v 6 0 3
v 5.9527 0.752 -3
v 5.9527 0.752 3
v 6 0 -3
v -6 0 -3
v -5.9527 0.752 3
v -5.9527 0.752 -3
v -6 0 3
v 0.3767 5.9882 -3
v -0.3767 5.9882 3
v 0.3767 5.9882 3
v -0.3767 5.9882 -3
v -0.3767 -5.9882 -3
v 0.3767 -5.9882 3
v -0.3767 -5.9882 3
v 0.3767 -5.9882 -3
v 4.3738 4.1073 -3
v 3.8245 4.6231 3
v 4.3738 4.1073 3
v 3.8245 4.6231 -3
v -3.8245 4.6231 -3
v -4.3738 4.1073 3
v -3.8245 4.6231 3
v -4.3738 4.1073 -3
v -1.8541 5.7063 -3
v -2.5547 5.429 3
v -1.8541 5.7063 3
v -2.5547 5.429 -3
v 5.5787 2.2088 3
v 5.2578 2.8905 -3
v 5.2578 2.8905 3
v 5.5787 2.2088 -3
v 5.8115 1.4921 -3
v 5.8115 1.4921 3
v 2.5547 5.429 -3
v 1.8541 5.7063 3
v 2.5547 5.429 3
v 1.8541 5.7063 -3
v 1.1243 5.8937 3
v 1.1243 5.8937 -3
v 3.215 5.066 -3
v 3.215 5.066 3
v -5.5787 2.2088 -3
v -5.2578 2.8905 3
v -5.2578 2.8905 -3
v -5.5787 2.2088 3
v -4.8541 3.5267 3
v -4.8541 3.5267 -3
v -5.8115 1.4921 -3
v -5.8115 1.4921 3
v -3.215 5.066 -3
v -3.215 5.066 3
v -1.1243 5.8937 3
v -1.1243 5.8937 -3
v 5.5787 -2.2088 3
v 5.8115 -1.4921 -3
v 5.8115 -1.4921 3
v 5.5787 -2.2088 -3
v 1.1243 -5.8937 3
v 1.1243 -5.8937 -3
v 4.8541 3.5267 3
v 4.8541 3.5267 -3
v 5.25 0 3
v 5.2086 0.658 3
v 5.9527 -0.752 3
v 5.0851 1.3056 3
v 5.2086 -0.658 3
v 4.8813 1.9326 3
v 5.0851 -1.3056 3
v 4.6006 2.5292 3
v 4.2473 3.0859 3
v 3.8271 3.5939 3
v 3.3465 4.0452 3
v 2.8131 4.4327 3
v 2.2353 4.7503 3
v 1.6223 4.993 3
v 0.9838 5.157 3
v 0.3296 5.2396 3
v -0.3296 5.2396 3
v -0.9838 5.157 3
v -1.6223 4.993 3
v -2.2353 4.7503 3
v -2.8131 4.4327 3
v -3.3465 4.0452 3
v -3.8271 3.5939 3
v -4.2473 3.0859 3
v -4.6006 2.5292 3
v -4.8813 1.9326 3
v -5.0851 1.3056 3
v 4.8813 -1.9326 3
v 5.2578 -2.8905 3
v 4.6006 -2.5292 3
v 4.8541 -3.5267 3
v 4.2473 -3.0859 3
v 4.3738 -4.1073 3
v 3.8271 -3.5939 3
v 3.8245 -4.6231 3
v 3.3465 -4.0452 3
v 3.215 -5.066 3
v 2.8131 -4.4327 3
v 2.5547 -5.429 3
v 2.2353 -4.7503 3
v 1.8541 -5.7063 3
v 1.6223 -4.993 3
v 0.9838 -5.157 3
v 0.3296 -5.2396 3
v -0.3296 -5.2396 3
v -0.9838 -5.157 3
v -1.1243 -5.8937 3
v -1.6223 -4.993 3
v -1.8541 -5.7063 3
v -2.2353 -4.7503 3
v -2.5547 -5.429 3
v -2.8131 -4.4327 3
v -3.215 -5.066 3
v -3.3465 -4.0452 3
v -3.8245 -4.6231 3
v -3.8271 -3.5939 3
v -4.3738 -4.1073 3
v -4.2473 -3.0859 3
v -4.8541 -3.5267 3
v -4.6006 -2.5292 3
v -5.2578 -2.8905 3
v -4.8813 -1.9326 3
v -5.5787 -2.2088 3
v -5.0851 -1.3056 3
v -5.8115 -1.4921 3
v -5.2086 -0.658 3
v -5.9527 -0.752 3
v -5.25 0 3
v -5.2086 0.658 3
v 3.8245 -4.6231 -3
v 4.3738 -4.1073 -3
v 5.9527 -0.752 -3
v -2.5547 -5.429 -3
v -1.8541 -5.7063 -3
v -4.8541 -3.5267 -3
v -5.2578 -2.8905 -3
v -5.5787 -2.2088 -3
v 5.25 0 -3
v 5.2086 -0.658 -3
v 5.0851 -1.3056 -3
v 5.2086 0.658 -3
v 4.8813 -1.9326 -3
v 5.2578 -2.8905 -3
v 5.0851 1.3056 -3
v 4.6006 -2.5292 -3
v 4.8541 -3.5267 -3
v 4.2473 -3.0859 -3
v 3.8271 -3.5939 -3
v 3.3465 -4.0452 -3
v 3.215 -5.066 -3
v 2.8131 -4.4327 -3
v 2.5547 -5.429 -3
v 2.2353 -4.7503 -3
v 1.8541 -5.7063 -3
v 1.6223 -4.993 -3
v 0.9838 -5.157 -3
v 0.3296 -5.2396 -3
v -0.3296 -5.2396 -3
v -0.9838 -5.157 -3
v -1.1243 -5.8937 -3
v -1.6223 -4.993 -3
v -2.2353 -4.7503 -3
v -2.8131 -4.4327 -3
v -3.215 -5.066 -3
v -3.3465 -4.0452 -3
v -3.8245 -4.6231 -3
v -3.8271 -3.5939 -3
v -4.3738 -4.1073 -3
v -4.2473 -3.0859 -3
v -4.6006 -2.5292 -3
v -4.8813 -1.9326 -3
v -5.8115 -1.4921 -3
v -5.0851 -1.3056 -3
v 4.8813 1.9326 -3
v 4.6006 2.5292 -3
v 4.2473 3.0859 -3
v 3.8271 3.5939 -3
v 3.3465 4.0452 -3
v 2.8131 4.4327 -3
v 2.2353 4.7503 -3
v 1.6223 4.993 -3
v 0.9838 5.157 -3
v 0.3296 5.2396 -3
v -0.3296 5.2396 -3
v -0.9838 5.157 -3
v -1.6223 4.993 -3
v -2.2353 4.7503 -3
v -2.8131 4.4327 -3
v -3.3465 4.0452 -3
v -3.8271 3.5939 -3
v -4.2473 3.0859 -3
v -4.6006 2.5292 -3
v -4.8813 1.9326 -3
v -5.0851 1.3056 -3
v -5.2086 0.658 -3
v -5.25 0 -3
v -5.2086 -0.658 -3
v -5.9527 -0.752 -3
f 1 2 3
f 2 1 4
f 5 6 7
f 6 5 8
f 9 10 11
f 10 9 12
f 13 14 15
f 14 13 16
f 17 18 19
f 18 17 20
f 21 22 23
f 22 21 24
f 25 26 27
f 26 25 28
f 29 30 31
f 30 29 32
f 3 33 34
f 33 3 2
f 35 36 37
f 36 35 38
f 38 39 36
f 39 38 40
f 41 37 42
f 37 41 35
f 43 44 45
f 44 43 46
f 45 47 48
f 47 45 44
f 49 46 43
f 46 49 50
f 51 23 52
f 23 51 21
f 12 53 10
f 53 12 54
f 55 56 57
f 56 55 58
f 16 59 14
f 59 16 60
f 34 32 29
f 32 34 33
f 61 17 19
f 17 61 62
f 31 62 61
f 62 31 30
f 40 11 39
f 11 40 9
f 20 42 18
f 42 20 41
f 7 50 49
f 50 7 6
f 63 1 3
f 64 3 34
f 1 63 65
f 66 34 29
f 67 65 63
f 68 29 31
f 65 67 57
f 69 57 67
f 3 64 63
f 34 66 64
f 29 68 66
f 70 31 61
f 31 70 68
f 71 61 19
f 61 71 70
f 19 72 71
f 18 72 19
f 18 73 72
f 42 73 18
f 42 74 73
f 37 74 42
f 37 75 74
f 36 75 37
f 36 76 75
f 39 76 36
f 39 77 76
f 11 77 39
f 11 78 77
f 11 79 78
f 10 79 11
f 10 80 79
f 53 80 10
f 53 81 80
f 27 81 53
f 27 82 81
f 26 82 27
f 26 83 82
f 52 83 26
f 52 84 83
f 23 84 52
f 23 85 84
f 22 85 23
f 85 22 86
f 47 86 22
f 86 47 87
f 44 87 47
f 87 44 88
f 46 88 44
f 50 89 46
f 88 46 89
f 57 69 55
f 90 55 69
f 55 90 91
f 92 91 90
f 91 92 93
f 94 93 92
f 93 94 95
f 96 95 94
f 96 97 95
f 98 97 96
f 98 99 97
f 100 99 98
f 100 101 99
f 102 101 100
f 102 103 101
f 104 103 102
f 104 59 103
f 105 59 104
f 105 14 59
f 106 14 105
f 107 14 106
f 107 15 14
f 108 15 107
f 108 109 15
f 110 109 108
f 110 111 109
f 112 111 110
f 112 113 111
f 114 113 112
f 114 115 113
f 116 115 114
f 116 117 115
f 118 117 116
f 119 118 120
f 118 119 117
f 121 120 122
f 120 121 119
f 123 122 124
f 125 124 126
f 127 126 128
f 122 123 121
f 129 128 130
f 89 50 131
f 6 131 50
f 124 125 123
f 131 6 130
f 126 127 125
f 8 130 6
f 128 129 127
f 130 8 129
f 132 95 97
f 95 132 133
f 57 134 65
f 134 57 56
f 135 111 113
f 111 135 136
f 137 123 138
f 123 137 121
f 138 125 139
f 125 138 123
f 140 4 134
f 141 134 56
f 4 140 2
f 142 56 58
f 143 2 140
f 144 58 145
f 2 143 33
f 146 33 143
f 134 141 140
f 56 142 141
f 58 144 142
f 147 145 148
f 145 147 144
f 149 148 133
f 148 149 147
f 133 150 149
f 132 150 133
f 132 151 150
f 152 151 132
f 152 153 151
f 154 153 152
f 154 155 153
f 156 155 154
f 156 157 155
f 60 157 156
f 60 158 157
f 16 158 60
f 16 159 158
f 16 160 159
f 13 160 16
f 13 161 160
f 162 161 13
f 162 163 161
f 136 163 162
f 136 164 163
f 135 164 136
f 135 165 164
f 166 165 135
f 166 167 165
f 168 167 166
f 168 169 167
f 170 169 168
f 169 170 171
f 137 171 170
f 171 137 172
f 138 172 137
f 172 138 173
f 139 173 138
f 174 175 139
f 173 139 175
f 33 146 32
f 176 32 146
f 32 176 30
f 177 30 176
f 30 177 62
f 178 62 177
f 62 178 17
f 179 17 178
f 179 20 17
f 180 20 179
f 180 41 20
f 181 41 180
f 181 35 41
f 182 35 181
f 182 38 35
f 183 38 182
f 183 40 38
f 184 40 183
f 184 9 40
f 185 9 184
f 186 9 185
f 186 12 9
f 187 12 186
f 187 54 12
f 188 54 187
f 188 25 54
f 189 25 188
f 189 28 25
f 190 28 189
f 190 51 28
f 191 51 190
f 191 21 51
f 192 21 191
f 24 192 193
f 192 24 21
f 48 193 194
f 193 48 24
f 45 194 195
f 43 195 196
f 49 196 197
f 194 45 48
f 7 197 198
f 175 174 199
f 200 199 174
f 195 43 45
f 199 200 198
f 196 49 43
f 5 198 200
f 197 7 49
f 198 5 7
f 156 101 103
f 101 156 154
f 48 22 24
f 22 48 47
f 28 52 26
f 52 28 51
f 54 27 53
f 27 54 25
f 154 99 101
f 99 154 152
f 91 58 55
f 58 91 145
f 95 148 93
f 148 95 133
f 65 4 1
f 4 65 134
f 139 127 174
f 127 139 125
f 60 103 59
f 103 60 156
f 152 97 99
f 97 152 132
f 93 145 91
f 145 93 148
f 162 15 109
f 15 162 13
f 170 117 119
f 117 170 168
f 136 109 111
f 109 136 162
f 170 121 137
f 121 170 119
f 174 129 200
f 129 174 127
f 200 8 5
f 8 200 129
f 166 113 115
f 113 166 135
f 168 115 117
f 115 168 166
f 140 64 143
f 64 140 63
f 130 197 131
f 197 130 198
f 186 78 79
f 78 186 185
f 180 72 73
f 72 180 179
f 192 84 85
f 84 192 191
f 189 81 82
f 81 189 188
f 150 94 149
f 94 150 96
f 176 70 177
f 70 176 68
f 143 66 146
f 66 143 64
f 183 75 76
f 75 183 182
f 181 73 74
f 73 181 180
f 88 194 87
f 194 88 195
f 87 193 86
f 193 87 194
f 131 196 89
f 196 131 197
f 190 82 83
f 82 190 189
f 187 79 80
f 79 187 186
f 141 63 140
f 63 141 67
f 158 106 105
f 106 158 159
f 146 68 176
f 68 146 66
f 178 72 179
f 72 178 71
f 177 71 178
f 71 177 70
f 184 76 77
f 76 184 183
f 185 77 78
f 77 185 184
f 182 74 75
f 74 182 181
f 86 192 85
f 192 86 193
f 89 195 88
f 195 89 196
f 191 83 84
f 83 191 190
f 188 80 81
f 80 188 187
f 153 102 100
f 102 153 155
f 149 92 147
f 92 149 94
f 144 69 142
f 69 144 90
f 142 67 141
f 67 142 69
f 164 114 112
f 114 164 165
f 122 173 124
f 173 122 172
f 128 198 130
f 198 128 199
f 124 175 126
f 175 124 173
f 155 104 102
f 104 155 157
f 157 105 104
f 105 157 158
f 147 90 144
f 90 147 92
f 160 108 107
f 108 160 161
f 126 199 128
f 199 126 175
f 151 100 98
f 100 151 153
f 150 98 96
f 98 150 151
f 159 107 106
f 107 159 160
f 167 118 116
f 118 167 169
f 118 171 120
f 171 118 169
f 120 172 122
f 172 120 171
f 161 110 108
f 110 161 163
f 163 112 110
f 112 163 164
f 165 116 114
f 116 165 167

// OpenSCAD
$fn = 50;


difference() {
	union() {
		translate(v = [0, 0, -3.0000000000]) {
			cylinder(h = 6, r = 6.0000000000);
		}
	}
	union() {
		translate(v = [0, 0, -100.0000000000]) {
			cylinder(h = 200, r = 5.2500000000);
		}
	}
}
